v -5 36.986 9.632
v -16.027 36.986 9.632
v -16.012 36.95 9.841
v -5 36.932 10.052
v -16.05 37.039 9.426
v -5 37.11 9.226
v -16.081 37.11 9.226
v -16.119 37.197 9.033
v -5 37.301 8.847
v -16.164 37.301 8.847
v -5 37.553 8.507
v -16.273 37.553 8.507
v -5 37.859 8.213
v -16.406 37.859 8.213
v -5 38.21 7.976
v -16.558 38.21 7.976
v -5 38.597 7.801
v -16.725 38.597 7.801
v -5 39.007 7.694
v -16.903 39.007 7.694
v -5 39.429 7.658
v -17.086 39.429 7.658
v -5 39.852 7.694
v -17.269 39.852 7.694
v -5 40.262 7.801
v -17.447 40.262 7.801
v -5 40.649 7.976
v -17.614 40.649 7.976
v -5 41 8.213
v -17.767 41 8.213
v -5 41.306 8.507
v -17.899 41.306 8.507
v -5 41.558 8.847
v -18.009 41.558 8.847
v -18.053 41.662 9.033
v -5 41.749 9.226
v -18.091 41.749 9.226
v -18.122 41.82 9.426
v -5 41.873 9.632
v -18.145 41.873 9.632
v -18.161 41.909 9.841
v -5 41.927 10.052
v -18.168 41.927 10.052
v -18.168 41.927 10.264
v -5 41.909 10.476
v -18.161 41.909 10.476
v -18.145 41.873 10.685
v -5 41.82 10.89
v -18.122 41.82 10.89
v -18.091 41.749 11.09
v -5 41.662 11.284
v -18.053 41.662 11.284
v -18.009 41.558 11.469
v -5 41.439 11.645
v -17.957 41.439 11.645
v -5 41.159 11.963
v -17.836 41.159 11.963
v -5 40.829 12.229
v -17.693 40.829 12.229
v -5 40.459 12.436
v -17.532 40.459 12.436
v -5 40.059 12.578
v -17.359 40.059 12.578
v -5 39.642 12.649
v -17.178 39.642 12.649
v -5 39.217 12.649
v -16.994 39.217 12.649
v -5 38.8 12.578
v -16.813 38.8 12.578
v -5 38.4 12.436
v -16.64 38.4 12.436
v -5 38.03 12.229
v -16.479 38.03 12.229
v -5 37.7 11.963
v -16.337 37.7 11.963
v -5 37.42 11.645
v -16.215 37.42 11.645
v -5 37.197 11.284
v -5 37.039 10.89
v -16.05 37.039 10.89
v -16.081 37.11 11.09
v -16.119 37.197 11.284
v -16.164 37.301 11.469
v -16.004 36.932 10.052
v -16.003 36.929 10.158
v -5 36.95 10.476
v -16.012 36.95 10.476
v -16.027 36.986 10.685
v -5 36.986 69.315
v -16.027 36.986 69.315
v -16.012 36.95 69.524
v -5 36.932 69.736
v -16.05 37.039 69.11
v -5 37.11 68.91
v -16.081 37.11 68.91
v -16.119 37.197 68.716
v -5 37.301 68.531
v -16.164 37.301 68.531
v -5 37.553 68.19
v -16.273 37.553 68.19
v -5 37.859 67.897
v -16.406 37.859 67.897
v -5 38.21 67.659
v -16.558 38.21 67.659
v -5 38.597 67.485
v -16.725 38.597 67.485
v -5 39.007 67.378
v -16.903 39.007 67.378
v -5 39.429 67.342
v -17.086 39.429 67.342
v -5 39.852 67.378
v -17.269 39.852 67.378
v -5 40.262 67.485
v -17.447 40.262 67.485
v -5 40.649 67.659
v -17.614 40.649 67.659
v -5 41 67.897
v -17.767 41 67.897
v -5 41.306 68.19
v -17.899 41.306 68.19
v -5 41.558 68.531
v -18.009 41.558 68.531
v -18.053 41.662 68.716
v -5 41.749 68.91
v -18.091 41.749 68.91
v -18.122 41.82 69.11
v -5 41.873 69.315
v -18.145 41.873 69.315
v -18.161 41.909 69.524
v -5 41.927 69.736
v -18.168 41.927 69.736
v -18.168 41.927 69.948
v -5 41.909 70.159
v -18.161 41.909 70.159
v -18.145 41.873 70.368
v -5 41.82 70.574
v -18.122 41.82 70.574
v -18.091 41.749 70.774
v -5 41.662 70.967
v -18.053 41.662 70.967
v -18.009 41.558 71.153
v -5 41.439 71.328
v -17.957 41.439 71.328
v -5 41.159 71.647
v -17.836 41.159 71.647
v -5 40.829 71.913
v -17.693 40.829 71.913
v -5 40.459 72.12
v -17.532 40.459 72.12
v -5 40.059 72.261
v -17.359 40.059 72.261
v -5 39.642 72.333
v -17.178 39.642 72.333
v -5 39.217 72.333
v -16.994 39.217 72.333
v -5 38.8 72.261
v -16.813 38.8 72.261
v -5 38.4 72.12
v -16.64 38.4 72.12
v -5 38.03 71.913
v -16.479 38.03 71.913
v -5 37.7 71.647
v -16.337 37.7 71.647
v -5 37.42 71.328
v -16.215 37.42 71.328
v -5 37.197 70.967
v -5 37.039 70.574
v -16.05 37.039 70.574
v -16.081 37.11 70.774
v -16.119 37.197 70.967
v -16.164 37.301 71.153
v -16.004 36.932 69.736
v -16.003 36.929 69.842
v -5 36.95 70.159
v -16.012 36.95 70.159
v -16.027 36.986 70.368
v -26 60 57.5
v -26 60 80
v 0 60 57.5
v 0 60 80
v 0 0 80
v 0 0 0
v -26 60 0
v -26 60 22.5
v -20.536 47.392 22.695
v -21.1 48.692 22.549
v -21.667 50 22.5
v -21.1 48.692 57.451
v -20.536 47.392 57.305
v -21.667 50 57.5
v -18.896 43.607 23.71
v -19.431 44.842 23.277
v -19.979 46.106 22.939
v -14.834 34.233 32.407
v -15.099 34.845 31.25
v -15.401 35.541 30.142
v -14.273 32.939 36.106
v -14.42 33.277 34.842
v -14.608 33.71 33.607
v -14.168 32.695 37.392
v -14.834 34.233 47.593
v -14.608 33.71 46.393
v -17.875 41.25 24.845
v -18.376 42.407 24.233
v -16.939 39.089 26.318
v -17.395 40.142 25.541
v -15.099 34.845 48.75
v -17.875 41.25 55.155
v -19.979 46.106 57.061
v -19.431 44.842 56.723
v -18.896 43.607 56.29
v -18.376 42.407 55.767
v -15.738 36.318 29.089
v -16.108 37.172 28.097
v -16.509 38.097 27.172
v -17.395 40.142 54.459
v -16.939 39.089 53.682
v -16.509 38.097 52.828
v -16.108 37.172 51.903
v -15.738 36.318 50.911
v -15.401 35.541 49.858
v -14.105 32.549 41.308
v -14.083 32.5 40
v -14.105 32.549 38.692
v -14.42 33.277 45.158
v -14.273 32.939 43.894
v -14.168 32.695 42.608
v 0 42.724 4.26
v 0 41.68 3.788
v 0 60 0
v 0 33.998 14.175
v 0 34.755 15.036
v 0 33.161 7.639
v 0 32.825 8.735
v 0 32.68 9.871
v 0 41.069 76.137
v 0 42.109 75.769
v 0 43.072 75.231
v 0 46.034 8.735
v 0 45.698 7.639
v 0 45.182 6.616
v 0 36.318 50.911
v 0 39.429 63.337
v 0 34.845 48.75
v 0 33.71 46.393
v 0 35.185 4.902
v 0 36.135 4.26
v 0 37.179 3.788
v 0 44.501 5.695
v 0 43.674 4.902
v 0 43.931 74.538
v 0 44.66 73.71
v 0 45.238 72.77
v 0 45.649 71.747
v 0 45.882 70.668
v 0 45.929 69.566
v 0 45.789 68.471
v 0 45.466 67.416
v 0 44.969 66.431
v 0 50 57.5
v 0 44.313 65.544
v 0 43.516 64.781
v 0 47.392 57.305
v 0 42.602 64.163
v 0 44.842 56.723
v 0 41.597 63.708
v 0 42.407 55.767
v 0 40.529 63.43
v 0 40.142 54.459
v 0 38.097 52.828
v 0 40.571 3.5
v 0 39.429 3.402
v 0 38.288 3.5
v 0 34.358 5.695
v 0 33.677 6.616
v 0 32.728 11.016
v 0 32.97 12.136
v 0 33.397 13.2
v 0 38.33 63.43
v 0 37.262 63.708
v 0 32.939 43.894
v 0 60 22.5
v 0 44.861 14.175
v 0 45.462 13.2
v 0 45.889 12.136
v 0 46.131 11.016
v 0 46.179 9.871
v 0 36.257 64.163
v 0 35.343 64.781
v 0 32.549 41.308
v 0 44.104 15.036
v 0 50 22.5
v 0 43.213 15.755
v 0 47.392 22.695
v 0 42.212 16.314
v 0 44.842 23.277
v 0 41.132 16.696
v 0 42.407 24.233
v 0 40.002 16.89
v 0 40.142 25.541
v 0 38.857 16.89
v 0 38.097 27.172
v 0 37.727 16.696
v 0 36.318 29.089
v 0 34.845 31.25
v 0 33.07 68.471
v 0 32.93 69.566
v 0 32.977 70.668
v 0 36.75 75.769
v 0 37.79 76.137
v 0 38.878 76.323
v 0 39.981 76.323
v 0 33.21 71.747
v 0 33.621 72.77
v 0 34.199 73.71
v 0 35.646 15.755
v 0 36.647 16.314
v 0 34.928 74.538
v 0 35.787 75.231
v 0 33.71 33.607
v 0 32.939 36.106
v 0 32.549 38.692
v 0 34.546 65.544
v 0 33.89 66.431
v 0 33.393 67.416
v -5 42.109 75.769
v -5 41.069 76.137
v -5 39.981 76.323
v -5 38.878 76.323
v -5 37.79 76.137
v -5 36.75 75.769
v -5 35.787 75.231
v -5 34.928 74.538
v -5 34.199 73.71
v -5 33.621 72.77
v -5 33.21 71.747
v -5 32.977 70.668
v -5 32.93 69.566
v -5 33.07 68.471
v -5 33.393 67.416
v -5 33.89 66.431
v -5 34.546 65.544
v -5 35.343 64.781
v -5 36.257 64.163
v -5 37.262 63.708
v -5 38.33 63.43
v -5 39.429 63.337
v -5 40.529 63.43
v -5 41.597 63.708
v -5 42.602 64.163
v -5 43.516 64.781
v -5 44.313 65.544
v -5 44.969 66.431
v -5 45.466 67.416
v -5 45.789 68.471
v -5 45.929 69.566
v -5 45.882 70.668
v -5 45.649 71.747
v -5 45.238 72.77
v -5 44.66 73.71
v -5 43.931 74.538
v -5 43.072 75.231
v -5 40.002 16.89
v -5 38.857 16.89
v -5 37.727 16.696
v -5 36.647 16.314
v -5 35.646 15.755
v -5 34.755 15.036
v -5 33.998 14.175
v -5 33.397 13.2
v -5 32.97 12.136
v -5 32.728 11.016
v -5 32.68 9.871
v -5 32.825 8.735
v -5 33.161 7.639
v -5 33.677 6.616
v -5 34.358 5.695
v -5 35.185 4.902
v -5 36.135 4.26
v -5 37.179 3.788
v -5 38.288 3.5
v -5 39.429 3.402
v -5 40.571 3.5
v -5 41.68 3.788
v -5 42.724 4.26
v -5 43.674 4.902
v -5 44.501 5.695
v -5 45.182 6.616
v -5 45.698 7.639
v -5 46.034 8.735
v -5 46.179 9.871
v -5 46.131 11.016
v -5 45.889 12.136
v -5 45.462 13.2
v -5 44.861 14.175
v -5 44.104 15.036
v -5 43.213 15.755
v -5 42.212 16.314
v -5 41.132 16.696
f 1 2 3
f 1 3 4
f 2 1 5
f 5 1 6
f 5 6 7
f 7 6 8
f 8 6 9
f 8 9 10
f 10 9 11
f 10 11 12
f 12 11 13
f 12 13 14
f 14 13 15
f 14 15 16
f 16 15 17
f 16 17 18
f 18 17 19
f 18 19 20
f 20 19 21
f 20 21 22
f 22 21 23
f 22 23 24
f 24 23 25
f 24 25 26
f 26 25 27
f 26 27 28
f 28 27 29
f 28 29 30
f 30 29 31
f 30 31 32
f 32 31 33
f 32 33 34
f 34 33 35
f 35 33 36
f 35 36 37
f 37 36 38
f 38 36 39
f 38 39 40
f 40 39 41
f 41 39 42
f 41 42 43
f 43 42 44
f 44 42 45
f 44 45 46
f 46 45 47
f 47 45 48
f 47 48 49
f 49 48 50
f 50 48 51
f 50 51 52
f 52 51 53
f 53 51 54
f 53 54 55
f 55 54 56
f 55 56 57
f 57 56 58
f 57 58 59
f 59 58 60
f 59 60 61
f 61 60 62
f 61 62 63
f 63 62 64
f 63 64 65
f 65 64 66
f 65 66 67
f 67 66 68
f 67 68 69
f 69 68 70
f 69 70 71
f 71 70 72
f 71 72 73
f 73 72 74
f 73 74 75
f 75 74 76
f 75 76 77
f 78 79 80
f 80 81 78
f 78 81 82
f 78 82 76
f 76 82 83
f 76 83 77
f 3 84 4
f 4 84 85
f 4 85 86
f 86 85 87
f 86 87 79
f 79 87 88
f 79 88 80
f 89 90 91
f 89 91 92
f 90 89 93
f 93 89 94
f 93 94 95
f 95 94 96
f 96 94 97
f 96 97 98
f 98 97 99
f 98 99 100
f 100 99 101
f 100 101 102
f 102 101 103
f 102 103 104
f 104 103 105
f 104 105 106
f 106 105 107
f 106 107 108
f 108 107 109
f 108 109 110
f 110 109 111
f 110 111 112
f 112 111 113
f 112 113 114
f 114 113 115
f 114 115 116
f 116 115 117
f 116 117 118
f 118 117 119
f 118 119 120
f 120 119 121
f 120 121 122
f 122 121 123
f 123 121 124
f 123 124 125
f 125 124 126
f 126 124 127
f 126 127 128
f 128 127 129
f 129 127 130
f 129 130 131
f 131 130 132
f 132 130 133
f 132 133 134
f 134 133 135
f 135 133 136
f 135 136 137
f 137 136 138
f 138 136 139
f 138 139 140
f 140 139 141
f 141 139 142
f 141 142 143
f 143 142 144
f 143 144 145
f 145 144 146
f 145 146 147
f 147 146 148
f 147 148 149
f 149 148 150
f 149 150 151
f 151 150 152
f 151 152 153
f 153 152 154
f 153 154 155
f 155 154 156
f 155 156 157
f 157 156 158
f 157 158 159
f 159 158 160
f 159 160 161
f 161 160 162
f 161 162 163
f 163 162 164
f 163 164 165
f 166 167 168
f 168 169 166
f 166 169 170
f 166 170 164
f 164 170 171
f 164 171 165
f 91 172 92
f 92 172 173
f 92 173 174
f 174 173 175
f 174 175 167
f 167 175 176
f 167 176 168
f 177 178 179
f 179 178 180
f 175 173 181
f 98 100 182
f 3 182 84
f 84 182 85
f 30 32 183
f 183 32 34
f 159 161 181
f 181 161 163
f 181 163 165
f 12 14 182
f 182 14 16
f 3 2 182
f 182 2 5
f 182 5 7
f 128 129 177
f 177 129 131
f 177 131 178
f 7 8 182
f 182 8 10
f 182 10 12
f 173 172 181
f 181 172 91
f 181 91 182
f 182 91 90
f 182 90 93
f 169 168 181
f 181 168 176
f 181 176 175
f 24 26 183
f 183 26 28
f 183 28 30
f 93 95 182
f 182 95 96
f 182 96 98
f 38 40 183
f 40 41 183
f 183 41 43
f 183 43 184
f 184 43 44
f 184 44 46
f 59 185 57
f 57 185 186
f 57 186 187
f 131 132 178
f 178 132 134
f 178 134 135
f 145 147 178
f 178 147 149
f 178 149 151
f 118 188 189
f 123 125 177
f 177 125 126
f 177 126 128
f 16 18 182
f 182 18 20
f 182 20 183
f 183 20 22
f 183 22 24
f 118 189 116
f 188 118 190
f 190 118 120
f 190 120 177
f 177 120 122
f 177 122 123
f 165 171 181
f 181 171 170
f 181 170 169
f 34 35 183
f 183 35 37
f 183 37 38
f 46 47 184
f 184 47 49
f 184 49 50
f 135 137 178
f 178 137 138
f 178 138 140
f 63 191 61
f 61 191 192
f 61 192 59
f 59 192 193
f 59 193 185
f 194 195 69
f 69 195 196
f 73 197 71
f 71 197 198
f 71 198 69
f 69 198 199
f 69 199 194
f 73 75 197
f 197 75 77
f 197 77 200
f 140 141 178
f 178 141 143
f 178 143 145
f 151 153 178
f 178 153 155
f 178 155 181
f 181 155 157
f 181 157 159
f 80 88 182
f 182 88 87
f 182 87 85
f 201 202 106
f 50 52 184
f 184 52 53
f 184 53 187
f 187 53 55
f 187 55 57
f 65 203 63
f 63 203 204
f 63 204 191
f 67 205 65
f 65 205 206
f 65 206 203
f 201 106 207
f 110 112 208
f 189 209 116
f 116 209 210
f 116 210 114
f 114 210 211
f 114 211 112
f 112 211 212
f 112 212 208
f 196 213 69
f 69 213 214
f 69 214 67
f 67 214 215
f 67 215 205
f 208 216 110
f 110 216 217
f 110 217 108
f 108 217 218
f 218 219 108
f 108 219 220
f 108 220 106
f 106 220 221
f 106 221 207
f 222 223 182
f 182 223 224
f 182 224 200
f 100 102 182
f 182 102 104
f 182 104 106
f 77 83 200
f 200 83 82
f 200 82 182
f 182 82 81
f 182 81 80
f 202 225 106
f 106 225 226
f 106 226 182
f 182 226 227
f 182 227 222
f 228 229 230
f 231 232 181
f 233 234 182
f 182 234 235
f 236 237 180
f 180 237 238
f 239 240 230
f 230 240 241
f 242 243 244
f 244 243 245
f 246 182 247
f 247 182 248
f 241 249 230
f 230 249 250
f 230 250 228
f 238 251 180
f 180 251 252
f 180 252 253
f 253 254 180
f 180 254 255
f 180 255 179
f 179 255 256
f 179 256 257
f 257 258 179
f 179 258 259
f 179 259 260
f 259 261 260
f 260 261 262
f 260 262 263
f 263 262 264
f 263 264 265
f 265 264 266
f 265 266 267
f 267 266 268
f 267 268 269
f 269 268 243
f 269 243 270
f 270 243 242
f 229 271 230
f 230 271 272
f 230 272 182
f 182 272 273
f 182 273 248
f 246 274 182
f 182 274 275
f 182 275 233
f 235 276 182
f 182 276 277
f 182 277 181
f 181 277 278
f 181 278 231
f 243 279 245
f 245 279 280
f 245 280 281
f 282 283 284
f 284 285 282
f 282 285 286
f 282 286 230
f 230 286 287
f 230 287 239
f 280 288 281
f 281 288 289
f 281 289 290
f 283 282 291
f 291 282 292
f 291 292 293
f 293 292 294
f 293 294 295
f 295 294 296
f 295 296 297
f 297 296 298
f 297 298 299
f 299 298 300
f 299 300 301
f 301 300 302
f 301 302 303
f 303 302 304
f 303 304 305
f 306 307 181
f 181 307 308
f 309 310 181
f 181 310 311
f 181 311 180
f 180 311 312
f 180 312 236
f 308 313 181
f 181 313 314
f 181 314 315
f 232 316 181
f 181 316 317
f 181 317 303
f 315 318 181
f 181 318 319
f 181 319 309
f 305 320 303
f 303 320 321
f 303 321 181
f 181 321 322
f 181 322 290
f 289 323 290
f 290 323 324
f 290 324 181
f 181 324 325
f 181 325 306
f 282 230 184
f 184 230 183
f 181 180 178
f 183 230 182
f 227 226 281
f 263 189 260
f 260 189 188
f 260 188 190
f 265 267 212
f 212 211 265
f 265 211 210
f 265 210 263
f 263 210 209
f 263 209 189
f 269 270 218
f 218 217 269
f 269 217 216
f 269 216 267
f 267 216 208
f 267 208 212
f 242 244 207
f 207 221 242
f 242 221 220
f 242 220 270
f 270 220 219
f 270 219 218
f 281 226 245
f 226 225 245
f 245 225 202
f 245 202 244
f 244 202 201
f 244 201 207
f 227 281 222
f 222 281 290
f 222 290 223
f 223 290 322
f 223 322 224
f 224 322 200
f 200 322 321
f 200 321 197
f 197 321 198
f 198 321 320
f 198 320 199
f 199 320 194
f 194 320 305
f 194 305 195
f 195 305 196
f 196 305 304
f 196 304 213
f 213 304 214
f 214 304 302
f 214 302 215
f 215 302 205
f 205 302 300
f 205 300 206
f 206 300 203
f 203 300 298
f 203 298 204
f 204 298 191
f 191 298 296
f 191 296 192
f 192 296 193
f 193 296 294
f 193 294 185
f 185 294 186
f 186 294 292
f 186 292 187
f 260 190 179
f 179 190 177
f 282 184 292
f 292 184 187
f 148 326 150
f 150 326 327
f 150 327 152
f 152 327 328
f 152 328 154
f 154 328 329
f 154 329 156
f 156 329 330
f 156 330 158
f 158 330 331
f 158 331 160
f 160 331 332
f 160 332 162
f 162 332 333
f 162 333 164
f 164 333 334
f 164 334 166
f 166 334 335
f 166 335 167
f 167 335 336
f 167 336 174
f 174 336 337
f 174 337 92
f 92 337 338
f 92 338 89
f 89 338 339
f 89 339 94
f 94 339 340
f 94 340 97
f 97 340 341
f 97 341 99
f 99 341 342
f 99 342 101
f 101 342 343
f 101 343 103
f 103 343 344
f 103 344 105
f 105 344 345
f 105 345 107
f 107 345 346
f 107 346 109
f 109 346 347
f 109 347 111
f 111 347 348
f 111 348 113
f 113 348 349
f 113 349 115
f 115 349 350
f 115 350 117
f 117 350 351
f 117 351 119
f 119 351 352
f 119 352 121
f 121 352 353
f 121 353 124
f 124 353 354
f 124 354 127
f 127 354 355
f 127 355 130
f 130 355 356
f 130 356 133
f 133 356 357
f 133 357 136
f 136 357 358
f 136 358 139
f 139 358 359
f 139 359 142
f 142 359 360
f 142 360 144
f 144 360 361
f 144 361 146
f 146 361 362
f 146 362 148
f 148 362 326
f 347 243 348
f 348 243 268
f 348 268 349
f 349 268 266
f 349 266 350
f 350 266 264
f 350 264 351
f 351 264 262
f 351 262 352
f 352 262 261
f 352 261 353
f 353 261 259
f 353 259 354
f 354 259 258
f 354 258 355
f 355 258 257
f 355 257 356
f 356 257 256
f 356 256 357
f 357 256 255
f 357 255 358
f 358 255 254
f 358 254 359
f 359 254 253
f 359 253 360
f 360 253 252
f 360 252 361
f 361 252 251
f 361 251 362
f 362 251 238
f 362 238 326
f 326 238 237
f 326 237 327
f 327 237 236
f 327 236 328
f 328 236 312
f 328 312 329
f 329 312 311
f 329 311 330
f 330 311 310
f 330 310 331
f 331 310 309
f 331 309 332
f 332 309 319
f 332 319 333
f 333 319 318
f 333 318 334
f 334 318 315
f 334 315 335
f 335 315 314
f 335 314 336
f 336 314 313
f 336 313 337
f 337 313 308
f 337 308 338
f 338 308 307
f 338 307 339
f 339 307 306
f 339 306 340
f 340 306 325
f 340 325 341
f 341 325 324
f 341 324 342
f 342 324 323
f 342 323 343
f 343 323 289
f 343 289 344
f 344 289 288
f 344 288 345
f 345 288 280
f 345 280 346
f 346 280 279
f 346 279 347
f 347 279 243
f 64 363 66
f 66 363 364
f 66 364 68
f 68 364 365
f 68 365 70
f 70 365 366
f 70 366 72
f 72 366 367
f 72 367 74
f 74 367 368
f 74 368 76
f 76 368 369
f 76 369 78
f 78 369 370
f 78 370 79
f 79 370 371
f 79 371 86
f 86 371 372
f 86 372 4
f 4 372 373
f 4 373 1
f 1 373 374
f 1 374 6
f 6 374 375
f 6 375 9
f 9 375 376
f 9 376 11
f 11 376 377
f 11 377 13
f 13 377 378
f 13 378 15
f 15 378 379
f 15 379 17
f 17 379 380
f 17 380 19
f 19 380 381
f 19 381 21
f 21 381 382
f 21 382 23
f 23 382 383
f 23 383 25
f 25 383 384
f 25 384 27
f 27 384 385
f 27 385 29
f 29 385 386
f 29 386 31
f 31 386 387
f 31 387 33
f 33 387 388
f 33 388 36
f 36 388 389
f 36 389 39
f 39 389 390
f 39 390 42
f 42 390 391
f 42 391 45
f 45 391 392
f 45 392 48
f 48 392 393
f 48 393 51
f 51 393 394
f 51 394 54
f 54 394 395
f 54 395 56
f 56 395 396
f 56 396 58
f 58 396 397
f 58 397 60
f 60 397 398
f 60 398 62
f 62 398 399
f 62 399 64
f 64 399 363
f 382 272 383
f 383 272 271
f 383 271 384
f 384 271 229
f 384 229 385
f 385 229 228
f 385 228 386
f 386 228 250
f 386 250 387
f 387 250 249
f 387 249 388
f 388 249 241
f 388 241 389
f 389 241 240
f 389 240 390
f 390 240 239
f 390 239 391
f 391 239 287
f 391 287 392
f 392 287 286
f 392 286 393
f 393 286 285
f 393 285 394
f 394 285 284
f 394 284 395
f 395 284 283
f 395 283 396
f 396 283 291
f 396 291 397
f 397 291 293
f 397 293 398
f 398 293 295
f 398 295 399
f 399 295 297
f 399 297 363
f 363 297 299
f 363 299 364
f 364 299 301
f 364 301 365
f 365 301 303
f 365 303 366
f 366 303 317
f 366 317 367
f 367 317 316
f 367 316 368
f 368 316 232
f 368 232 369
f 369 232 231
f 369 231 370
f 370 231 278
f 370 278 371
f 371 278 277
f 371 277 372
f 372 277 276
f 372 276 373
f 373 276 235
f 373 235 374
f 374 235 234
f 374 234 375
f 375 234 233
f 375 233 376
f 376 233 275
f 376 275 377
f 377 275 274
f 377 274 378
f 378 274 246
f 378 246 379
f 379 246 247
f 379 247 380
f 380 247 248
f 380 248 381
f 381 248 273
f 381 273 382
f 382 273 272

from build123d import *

# Parameters (mm, degrees)
BOSS_EXTRU_1_DEPTH      = 80
ENL_V_MAT_EXTRU_1_DEPTH = 104.324730825
ESQUISSE4_R             = 2.5
ENL_V_MAT_EXTRU_2_DEPTH = 80
ESQUISSE6_R             = 6.505119939
ESQUISSE6_R_2           = 6.755806102
ENL_V_MAT_EXTRU_3_DEPTH = 5


with BuildPart() as part:
    # Esquisse2 → Boss.-Extru.1 (new body)
    with BuildSketch(Plane.XY):
        Polygon((0, 0), (0, 60), (-26, 60), align=None)
    extrude(amount=BOSS_EXTRU_1_DEPTH)

    # Esquisse3 → Enlèv. mat.-Extru.1 (cut, through all)
    with BuildSketch(Plane(origin=(0, 0, 0), x_dir=(0, 0, -1), z_dir=(1, 0, 0))):
        with BuildLine():
            Line((-57.5, 50), (-57.5, 60))
            Line((-57.5, 60), (-22.5, 60))
            Line((-22.5, 60), (-22.5, 50))
            ThreePointArc((-22.5, 50), (-40, 32.5), (-57.5, 50))
        make_face()
    extrude(amount=-ENL_V_MAT_EXTRU_1_DEPTH, mode=Mode.SUBTRACT)

    # Esquisse4 → Enlèv. mat.-Extru.2 (cut)
    with BuildSketch(Plane(origin=(0, 0, 0), x_dir=(0, 0, -1), z_dir=(1, 0, 0))):
        with Locations((-69.841791115, 39.429492972)):
            Circle(ESQUISSE4_R)
        with Locations((-10.158208885, 39.429492972)):
            Circle(ESQUISSE4_R)
    extrude(amount=-ENL_V_MAT_EXTRU_2_DEPTH, mode=Mode.SUBTRACT)

    # Esquisse6 → Enlèv. mat.-Extru.3 (cut)
    with BuildSketch(Plane(origin=(0, 0, 0), x_dir=(0, 0, -1), z_dir=(1, 0, 0))):
        with Locations((-69.841791115, 39.429492972)):
            Circle(ESQUISSE6_R)
        with Locations((-10.158208885, 39.429492972)):
            Circle(ESQUISSE6_R_2)
    extrude(amount=-ENL_V_MAT_EXTRU_3_DEPTH, mode=Mode.SUBTRACT)


solid = part.part
